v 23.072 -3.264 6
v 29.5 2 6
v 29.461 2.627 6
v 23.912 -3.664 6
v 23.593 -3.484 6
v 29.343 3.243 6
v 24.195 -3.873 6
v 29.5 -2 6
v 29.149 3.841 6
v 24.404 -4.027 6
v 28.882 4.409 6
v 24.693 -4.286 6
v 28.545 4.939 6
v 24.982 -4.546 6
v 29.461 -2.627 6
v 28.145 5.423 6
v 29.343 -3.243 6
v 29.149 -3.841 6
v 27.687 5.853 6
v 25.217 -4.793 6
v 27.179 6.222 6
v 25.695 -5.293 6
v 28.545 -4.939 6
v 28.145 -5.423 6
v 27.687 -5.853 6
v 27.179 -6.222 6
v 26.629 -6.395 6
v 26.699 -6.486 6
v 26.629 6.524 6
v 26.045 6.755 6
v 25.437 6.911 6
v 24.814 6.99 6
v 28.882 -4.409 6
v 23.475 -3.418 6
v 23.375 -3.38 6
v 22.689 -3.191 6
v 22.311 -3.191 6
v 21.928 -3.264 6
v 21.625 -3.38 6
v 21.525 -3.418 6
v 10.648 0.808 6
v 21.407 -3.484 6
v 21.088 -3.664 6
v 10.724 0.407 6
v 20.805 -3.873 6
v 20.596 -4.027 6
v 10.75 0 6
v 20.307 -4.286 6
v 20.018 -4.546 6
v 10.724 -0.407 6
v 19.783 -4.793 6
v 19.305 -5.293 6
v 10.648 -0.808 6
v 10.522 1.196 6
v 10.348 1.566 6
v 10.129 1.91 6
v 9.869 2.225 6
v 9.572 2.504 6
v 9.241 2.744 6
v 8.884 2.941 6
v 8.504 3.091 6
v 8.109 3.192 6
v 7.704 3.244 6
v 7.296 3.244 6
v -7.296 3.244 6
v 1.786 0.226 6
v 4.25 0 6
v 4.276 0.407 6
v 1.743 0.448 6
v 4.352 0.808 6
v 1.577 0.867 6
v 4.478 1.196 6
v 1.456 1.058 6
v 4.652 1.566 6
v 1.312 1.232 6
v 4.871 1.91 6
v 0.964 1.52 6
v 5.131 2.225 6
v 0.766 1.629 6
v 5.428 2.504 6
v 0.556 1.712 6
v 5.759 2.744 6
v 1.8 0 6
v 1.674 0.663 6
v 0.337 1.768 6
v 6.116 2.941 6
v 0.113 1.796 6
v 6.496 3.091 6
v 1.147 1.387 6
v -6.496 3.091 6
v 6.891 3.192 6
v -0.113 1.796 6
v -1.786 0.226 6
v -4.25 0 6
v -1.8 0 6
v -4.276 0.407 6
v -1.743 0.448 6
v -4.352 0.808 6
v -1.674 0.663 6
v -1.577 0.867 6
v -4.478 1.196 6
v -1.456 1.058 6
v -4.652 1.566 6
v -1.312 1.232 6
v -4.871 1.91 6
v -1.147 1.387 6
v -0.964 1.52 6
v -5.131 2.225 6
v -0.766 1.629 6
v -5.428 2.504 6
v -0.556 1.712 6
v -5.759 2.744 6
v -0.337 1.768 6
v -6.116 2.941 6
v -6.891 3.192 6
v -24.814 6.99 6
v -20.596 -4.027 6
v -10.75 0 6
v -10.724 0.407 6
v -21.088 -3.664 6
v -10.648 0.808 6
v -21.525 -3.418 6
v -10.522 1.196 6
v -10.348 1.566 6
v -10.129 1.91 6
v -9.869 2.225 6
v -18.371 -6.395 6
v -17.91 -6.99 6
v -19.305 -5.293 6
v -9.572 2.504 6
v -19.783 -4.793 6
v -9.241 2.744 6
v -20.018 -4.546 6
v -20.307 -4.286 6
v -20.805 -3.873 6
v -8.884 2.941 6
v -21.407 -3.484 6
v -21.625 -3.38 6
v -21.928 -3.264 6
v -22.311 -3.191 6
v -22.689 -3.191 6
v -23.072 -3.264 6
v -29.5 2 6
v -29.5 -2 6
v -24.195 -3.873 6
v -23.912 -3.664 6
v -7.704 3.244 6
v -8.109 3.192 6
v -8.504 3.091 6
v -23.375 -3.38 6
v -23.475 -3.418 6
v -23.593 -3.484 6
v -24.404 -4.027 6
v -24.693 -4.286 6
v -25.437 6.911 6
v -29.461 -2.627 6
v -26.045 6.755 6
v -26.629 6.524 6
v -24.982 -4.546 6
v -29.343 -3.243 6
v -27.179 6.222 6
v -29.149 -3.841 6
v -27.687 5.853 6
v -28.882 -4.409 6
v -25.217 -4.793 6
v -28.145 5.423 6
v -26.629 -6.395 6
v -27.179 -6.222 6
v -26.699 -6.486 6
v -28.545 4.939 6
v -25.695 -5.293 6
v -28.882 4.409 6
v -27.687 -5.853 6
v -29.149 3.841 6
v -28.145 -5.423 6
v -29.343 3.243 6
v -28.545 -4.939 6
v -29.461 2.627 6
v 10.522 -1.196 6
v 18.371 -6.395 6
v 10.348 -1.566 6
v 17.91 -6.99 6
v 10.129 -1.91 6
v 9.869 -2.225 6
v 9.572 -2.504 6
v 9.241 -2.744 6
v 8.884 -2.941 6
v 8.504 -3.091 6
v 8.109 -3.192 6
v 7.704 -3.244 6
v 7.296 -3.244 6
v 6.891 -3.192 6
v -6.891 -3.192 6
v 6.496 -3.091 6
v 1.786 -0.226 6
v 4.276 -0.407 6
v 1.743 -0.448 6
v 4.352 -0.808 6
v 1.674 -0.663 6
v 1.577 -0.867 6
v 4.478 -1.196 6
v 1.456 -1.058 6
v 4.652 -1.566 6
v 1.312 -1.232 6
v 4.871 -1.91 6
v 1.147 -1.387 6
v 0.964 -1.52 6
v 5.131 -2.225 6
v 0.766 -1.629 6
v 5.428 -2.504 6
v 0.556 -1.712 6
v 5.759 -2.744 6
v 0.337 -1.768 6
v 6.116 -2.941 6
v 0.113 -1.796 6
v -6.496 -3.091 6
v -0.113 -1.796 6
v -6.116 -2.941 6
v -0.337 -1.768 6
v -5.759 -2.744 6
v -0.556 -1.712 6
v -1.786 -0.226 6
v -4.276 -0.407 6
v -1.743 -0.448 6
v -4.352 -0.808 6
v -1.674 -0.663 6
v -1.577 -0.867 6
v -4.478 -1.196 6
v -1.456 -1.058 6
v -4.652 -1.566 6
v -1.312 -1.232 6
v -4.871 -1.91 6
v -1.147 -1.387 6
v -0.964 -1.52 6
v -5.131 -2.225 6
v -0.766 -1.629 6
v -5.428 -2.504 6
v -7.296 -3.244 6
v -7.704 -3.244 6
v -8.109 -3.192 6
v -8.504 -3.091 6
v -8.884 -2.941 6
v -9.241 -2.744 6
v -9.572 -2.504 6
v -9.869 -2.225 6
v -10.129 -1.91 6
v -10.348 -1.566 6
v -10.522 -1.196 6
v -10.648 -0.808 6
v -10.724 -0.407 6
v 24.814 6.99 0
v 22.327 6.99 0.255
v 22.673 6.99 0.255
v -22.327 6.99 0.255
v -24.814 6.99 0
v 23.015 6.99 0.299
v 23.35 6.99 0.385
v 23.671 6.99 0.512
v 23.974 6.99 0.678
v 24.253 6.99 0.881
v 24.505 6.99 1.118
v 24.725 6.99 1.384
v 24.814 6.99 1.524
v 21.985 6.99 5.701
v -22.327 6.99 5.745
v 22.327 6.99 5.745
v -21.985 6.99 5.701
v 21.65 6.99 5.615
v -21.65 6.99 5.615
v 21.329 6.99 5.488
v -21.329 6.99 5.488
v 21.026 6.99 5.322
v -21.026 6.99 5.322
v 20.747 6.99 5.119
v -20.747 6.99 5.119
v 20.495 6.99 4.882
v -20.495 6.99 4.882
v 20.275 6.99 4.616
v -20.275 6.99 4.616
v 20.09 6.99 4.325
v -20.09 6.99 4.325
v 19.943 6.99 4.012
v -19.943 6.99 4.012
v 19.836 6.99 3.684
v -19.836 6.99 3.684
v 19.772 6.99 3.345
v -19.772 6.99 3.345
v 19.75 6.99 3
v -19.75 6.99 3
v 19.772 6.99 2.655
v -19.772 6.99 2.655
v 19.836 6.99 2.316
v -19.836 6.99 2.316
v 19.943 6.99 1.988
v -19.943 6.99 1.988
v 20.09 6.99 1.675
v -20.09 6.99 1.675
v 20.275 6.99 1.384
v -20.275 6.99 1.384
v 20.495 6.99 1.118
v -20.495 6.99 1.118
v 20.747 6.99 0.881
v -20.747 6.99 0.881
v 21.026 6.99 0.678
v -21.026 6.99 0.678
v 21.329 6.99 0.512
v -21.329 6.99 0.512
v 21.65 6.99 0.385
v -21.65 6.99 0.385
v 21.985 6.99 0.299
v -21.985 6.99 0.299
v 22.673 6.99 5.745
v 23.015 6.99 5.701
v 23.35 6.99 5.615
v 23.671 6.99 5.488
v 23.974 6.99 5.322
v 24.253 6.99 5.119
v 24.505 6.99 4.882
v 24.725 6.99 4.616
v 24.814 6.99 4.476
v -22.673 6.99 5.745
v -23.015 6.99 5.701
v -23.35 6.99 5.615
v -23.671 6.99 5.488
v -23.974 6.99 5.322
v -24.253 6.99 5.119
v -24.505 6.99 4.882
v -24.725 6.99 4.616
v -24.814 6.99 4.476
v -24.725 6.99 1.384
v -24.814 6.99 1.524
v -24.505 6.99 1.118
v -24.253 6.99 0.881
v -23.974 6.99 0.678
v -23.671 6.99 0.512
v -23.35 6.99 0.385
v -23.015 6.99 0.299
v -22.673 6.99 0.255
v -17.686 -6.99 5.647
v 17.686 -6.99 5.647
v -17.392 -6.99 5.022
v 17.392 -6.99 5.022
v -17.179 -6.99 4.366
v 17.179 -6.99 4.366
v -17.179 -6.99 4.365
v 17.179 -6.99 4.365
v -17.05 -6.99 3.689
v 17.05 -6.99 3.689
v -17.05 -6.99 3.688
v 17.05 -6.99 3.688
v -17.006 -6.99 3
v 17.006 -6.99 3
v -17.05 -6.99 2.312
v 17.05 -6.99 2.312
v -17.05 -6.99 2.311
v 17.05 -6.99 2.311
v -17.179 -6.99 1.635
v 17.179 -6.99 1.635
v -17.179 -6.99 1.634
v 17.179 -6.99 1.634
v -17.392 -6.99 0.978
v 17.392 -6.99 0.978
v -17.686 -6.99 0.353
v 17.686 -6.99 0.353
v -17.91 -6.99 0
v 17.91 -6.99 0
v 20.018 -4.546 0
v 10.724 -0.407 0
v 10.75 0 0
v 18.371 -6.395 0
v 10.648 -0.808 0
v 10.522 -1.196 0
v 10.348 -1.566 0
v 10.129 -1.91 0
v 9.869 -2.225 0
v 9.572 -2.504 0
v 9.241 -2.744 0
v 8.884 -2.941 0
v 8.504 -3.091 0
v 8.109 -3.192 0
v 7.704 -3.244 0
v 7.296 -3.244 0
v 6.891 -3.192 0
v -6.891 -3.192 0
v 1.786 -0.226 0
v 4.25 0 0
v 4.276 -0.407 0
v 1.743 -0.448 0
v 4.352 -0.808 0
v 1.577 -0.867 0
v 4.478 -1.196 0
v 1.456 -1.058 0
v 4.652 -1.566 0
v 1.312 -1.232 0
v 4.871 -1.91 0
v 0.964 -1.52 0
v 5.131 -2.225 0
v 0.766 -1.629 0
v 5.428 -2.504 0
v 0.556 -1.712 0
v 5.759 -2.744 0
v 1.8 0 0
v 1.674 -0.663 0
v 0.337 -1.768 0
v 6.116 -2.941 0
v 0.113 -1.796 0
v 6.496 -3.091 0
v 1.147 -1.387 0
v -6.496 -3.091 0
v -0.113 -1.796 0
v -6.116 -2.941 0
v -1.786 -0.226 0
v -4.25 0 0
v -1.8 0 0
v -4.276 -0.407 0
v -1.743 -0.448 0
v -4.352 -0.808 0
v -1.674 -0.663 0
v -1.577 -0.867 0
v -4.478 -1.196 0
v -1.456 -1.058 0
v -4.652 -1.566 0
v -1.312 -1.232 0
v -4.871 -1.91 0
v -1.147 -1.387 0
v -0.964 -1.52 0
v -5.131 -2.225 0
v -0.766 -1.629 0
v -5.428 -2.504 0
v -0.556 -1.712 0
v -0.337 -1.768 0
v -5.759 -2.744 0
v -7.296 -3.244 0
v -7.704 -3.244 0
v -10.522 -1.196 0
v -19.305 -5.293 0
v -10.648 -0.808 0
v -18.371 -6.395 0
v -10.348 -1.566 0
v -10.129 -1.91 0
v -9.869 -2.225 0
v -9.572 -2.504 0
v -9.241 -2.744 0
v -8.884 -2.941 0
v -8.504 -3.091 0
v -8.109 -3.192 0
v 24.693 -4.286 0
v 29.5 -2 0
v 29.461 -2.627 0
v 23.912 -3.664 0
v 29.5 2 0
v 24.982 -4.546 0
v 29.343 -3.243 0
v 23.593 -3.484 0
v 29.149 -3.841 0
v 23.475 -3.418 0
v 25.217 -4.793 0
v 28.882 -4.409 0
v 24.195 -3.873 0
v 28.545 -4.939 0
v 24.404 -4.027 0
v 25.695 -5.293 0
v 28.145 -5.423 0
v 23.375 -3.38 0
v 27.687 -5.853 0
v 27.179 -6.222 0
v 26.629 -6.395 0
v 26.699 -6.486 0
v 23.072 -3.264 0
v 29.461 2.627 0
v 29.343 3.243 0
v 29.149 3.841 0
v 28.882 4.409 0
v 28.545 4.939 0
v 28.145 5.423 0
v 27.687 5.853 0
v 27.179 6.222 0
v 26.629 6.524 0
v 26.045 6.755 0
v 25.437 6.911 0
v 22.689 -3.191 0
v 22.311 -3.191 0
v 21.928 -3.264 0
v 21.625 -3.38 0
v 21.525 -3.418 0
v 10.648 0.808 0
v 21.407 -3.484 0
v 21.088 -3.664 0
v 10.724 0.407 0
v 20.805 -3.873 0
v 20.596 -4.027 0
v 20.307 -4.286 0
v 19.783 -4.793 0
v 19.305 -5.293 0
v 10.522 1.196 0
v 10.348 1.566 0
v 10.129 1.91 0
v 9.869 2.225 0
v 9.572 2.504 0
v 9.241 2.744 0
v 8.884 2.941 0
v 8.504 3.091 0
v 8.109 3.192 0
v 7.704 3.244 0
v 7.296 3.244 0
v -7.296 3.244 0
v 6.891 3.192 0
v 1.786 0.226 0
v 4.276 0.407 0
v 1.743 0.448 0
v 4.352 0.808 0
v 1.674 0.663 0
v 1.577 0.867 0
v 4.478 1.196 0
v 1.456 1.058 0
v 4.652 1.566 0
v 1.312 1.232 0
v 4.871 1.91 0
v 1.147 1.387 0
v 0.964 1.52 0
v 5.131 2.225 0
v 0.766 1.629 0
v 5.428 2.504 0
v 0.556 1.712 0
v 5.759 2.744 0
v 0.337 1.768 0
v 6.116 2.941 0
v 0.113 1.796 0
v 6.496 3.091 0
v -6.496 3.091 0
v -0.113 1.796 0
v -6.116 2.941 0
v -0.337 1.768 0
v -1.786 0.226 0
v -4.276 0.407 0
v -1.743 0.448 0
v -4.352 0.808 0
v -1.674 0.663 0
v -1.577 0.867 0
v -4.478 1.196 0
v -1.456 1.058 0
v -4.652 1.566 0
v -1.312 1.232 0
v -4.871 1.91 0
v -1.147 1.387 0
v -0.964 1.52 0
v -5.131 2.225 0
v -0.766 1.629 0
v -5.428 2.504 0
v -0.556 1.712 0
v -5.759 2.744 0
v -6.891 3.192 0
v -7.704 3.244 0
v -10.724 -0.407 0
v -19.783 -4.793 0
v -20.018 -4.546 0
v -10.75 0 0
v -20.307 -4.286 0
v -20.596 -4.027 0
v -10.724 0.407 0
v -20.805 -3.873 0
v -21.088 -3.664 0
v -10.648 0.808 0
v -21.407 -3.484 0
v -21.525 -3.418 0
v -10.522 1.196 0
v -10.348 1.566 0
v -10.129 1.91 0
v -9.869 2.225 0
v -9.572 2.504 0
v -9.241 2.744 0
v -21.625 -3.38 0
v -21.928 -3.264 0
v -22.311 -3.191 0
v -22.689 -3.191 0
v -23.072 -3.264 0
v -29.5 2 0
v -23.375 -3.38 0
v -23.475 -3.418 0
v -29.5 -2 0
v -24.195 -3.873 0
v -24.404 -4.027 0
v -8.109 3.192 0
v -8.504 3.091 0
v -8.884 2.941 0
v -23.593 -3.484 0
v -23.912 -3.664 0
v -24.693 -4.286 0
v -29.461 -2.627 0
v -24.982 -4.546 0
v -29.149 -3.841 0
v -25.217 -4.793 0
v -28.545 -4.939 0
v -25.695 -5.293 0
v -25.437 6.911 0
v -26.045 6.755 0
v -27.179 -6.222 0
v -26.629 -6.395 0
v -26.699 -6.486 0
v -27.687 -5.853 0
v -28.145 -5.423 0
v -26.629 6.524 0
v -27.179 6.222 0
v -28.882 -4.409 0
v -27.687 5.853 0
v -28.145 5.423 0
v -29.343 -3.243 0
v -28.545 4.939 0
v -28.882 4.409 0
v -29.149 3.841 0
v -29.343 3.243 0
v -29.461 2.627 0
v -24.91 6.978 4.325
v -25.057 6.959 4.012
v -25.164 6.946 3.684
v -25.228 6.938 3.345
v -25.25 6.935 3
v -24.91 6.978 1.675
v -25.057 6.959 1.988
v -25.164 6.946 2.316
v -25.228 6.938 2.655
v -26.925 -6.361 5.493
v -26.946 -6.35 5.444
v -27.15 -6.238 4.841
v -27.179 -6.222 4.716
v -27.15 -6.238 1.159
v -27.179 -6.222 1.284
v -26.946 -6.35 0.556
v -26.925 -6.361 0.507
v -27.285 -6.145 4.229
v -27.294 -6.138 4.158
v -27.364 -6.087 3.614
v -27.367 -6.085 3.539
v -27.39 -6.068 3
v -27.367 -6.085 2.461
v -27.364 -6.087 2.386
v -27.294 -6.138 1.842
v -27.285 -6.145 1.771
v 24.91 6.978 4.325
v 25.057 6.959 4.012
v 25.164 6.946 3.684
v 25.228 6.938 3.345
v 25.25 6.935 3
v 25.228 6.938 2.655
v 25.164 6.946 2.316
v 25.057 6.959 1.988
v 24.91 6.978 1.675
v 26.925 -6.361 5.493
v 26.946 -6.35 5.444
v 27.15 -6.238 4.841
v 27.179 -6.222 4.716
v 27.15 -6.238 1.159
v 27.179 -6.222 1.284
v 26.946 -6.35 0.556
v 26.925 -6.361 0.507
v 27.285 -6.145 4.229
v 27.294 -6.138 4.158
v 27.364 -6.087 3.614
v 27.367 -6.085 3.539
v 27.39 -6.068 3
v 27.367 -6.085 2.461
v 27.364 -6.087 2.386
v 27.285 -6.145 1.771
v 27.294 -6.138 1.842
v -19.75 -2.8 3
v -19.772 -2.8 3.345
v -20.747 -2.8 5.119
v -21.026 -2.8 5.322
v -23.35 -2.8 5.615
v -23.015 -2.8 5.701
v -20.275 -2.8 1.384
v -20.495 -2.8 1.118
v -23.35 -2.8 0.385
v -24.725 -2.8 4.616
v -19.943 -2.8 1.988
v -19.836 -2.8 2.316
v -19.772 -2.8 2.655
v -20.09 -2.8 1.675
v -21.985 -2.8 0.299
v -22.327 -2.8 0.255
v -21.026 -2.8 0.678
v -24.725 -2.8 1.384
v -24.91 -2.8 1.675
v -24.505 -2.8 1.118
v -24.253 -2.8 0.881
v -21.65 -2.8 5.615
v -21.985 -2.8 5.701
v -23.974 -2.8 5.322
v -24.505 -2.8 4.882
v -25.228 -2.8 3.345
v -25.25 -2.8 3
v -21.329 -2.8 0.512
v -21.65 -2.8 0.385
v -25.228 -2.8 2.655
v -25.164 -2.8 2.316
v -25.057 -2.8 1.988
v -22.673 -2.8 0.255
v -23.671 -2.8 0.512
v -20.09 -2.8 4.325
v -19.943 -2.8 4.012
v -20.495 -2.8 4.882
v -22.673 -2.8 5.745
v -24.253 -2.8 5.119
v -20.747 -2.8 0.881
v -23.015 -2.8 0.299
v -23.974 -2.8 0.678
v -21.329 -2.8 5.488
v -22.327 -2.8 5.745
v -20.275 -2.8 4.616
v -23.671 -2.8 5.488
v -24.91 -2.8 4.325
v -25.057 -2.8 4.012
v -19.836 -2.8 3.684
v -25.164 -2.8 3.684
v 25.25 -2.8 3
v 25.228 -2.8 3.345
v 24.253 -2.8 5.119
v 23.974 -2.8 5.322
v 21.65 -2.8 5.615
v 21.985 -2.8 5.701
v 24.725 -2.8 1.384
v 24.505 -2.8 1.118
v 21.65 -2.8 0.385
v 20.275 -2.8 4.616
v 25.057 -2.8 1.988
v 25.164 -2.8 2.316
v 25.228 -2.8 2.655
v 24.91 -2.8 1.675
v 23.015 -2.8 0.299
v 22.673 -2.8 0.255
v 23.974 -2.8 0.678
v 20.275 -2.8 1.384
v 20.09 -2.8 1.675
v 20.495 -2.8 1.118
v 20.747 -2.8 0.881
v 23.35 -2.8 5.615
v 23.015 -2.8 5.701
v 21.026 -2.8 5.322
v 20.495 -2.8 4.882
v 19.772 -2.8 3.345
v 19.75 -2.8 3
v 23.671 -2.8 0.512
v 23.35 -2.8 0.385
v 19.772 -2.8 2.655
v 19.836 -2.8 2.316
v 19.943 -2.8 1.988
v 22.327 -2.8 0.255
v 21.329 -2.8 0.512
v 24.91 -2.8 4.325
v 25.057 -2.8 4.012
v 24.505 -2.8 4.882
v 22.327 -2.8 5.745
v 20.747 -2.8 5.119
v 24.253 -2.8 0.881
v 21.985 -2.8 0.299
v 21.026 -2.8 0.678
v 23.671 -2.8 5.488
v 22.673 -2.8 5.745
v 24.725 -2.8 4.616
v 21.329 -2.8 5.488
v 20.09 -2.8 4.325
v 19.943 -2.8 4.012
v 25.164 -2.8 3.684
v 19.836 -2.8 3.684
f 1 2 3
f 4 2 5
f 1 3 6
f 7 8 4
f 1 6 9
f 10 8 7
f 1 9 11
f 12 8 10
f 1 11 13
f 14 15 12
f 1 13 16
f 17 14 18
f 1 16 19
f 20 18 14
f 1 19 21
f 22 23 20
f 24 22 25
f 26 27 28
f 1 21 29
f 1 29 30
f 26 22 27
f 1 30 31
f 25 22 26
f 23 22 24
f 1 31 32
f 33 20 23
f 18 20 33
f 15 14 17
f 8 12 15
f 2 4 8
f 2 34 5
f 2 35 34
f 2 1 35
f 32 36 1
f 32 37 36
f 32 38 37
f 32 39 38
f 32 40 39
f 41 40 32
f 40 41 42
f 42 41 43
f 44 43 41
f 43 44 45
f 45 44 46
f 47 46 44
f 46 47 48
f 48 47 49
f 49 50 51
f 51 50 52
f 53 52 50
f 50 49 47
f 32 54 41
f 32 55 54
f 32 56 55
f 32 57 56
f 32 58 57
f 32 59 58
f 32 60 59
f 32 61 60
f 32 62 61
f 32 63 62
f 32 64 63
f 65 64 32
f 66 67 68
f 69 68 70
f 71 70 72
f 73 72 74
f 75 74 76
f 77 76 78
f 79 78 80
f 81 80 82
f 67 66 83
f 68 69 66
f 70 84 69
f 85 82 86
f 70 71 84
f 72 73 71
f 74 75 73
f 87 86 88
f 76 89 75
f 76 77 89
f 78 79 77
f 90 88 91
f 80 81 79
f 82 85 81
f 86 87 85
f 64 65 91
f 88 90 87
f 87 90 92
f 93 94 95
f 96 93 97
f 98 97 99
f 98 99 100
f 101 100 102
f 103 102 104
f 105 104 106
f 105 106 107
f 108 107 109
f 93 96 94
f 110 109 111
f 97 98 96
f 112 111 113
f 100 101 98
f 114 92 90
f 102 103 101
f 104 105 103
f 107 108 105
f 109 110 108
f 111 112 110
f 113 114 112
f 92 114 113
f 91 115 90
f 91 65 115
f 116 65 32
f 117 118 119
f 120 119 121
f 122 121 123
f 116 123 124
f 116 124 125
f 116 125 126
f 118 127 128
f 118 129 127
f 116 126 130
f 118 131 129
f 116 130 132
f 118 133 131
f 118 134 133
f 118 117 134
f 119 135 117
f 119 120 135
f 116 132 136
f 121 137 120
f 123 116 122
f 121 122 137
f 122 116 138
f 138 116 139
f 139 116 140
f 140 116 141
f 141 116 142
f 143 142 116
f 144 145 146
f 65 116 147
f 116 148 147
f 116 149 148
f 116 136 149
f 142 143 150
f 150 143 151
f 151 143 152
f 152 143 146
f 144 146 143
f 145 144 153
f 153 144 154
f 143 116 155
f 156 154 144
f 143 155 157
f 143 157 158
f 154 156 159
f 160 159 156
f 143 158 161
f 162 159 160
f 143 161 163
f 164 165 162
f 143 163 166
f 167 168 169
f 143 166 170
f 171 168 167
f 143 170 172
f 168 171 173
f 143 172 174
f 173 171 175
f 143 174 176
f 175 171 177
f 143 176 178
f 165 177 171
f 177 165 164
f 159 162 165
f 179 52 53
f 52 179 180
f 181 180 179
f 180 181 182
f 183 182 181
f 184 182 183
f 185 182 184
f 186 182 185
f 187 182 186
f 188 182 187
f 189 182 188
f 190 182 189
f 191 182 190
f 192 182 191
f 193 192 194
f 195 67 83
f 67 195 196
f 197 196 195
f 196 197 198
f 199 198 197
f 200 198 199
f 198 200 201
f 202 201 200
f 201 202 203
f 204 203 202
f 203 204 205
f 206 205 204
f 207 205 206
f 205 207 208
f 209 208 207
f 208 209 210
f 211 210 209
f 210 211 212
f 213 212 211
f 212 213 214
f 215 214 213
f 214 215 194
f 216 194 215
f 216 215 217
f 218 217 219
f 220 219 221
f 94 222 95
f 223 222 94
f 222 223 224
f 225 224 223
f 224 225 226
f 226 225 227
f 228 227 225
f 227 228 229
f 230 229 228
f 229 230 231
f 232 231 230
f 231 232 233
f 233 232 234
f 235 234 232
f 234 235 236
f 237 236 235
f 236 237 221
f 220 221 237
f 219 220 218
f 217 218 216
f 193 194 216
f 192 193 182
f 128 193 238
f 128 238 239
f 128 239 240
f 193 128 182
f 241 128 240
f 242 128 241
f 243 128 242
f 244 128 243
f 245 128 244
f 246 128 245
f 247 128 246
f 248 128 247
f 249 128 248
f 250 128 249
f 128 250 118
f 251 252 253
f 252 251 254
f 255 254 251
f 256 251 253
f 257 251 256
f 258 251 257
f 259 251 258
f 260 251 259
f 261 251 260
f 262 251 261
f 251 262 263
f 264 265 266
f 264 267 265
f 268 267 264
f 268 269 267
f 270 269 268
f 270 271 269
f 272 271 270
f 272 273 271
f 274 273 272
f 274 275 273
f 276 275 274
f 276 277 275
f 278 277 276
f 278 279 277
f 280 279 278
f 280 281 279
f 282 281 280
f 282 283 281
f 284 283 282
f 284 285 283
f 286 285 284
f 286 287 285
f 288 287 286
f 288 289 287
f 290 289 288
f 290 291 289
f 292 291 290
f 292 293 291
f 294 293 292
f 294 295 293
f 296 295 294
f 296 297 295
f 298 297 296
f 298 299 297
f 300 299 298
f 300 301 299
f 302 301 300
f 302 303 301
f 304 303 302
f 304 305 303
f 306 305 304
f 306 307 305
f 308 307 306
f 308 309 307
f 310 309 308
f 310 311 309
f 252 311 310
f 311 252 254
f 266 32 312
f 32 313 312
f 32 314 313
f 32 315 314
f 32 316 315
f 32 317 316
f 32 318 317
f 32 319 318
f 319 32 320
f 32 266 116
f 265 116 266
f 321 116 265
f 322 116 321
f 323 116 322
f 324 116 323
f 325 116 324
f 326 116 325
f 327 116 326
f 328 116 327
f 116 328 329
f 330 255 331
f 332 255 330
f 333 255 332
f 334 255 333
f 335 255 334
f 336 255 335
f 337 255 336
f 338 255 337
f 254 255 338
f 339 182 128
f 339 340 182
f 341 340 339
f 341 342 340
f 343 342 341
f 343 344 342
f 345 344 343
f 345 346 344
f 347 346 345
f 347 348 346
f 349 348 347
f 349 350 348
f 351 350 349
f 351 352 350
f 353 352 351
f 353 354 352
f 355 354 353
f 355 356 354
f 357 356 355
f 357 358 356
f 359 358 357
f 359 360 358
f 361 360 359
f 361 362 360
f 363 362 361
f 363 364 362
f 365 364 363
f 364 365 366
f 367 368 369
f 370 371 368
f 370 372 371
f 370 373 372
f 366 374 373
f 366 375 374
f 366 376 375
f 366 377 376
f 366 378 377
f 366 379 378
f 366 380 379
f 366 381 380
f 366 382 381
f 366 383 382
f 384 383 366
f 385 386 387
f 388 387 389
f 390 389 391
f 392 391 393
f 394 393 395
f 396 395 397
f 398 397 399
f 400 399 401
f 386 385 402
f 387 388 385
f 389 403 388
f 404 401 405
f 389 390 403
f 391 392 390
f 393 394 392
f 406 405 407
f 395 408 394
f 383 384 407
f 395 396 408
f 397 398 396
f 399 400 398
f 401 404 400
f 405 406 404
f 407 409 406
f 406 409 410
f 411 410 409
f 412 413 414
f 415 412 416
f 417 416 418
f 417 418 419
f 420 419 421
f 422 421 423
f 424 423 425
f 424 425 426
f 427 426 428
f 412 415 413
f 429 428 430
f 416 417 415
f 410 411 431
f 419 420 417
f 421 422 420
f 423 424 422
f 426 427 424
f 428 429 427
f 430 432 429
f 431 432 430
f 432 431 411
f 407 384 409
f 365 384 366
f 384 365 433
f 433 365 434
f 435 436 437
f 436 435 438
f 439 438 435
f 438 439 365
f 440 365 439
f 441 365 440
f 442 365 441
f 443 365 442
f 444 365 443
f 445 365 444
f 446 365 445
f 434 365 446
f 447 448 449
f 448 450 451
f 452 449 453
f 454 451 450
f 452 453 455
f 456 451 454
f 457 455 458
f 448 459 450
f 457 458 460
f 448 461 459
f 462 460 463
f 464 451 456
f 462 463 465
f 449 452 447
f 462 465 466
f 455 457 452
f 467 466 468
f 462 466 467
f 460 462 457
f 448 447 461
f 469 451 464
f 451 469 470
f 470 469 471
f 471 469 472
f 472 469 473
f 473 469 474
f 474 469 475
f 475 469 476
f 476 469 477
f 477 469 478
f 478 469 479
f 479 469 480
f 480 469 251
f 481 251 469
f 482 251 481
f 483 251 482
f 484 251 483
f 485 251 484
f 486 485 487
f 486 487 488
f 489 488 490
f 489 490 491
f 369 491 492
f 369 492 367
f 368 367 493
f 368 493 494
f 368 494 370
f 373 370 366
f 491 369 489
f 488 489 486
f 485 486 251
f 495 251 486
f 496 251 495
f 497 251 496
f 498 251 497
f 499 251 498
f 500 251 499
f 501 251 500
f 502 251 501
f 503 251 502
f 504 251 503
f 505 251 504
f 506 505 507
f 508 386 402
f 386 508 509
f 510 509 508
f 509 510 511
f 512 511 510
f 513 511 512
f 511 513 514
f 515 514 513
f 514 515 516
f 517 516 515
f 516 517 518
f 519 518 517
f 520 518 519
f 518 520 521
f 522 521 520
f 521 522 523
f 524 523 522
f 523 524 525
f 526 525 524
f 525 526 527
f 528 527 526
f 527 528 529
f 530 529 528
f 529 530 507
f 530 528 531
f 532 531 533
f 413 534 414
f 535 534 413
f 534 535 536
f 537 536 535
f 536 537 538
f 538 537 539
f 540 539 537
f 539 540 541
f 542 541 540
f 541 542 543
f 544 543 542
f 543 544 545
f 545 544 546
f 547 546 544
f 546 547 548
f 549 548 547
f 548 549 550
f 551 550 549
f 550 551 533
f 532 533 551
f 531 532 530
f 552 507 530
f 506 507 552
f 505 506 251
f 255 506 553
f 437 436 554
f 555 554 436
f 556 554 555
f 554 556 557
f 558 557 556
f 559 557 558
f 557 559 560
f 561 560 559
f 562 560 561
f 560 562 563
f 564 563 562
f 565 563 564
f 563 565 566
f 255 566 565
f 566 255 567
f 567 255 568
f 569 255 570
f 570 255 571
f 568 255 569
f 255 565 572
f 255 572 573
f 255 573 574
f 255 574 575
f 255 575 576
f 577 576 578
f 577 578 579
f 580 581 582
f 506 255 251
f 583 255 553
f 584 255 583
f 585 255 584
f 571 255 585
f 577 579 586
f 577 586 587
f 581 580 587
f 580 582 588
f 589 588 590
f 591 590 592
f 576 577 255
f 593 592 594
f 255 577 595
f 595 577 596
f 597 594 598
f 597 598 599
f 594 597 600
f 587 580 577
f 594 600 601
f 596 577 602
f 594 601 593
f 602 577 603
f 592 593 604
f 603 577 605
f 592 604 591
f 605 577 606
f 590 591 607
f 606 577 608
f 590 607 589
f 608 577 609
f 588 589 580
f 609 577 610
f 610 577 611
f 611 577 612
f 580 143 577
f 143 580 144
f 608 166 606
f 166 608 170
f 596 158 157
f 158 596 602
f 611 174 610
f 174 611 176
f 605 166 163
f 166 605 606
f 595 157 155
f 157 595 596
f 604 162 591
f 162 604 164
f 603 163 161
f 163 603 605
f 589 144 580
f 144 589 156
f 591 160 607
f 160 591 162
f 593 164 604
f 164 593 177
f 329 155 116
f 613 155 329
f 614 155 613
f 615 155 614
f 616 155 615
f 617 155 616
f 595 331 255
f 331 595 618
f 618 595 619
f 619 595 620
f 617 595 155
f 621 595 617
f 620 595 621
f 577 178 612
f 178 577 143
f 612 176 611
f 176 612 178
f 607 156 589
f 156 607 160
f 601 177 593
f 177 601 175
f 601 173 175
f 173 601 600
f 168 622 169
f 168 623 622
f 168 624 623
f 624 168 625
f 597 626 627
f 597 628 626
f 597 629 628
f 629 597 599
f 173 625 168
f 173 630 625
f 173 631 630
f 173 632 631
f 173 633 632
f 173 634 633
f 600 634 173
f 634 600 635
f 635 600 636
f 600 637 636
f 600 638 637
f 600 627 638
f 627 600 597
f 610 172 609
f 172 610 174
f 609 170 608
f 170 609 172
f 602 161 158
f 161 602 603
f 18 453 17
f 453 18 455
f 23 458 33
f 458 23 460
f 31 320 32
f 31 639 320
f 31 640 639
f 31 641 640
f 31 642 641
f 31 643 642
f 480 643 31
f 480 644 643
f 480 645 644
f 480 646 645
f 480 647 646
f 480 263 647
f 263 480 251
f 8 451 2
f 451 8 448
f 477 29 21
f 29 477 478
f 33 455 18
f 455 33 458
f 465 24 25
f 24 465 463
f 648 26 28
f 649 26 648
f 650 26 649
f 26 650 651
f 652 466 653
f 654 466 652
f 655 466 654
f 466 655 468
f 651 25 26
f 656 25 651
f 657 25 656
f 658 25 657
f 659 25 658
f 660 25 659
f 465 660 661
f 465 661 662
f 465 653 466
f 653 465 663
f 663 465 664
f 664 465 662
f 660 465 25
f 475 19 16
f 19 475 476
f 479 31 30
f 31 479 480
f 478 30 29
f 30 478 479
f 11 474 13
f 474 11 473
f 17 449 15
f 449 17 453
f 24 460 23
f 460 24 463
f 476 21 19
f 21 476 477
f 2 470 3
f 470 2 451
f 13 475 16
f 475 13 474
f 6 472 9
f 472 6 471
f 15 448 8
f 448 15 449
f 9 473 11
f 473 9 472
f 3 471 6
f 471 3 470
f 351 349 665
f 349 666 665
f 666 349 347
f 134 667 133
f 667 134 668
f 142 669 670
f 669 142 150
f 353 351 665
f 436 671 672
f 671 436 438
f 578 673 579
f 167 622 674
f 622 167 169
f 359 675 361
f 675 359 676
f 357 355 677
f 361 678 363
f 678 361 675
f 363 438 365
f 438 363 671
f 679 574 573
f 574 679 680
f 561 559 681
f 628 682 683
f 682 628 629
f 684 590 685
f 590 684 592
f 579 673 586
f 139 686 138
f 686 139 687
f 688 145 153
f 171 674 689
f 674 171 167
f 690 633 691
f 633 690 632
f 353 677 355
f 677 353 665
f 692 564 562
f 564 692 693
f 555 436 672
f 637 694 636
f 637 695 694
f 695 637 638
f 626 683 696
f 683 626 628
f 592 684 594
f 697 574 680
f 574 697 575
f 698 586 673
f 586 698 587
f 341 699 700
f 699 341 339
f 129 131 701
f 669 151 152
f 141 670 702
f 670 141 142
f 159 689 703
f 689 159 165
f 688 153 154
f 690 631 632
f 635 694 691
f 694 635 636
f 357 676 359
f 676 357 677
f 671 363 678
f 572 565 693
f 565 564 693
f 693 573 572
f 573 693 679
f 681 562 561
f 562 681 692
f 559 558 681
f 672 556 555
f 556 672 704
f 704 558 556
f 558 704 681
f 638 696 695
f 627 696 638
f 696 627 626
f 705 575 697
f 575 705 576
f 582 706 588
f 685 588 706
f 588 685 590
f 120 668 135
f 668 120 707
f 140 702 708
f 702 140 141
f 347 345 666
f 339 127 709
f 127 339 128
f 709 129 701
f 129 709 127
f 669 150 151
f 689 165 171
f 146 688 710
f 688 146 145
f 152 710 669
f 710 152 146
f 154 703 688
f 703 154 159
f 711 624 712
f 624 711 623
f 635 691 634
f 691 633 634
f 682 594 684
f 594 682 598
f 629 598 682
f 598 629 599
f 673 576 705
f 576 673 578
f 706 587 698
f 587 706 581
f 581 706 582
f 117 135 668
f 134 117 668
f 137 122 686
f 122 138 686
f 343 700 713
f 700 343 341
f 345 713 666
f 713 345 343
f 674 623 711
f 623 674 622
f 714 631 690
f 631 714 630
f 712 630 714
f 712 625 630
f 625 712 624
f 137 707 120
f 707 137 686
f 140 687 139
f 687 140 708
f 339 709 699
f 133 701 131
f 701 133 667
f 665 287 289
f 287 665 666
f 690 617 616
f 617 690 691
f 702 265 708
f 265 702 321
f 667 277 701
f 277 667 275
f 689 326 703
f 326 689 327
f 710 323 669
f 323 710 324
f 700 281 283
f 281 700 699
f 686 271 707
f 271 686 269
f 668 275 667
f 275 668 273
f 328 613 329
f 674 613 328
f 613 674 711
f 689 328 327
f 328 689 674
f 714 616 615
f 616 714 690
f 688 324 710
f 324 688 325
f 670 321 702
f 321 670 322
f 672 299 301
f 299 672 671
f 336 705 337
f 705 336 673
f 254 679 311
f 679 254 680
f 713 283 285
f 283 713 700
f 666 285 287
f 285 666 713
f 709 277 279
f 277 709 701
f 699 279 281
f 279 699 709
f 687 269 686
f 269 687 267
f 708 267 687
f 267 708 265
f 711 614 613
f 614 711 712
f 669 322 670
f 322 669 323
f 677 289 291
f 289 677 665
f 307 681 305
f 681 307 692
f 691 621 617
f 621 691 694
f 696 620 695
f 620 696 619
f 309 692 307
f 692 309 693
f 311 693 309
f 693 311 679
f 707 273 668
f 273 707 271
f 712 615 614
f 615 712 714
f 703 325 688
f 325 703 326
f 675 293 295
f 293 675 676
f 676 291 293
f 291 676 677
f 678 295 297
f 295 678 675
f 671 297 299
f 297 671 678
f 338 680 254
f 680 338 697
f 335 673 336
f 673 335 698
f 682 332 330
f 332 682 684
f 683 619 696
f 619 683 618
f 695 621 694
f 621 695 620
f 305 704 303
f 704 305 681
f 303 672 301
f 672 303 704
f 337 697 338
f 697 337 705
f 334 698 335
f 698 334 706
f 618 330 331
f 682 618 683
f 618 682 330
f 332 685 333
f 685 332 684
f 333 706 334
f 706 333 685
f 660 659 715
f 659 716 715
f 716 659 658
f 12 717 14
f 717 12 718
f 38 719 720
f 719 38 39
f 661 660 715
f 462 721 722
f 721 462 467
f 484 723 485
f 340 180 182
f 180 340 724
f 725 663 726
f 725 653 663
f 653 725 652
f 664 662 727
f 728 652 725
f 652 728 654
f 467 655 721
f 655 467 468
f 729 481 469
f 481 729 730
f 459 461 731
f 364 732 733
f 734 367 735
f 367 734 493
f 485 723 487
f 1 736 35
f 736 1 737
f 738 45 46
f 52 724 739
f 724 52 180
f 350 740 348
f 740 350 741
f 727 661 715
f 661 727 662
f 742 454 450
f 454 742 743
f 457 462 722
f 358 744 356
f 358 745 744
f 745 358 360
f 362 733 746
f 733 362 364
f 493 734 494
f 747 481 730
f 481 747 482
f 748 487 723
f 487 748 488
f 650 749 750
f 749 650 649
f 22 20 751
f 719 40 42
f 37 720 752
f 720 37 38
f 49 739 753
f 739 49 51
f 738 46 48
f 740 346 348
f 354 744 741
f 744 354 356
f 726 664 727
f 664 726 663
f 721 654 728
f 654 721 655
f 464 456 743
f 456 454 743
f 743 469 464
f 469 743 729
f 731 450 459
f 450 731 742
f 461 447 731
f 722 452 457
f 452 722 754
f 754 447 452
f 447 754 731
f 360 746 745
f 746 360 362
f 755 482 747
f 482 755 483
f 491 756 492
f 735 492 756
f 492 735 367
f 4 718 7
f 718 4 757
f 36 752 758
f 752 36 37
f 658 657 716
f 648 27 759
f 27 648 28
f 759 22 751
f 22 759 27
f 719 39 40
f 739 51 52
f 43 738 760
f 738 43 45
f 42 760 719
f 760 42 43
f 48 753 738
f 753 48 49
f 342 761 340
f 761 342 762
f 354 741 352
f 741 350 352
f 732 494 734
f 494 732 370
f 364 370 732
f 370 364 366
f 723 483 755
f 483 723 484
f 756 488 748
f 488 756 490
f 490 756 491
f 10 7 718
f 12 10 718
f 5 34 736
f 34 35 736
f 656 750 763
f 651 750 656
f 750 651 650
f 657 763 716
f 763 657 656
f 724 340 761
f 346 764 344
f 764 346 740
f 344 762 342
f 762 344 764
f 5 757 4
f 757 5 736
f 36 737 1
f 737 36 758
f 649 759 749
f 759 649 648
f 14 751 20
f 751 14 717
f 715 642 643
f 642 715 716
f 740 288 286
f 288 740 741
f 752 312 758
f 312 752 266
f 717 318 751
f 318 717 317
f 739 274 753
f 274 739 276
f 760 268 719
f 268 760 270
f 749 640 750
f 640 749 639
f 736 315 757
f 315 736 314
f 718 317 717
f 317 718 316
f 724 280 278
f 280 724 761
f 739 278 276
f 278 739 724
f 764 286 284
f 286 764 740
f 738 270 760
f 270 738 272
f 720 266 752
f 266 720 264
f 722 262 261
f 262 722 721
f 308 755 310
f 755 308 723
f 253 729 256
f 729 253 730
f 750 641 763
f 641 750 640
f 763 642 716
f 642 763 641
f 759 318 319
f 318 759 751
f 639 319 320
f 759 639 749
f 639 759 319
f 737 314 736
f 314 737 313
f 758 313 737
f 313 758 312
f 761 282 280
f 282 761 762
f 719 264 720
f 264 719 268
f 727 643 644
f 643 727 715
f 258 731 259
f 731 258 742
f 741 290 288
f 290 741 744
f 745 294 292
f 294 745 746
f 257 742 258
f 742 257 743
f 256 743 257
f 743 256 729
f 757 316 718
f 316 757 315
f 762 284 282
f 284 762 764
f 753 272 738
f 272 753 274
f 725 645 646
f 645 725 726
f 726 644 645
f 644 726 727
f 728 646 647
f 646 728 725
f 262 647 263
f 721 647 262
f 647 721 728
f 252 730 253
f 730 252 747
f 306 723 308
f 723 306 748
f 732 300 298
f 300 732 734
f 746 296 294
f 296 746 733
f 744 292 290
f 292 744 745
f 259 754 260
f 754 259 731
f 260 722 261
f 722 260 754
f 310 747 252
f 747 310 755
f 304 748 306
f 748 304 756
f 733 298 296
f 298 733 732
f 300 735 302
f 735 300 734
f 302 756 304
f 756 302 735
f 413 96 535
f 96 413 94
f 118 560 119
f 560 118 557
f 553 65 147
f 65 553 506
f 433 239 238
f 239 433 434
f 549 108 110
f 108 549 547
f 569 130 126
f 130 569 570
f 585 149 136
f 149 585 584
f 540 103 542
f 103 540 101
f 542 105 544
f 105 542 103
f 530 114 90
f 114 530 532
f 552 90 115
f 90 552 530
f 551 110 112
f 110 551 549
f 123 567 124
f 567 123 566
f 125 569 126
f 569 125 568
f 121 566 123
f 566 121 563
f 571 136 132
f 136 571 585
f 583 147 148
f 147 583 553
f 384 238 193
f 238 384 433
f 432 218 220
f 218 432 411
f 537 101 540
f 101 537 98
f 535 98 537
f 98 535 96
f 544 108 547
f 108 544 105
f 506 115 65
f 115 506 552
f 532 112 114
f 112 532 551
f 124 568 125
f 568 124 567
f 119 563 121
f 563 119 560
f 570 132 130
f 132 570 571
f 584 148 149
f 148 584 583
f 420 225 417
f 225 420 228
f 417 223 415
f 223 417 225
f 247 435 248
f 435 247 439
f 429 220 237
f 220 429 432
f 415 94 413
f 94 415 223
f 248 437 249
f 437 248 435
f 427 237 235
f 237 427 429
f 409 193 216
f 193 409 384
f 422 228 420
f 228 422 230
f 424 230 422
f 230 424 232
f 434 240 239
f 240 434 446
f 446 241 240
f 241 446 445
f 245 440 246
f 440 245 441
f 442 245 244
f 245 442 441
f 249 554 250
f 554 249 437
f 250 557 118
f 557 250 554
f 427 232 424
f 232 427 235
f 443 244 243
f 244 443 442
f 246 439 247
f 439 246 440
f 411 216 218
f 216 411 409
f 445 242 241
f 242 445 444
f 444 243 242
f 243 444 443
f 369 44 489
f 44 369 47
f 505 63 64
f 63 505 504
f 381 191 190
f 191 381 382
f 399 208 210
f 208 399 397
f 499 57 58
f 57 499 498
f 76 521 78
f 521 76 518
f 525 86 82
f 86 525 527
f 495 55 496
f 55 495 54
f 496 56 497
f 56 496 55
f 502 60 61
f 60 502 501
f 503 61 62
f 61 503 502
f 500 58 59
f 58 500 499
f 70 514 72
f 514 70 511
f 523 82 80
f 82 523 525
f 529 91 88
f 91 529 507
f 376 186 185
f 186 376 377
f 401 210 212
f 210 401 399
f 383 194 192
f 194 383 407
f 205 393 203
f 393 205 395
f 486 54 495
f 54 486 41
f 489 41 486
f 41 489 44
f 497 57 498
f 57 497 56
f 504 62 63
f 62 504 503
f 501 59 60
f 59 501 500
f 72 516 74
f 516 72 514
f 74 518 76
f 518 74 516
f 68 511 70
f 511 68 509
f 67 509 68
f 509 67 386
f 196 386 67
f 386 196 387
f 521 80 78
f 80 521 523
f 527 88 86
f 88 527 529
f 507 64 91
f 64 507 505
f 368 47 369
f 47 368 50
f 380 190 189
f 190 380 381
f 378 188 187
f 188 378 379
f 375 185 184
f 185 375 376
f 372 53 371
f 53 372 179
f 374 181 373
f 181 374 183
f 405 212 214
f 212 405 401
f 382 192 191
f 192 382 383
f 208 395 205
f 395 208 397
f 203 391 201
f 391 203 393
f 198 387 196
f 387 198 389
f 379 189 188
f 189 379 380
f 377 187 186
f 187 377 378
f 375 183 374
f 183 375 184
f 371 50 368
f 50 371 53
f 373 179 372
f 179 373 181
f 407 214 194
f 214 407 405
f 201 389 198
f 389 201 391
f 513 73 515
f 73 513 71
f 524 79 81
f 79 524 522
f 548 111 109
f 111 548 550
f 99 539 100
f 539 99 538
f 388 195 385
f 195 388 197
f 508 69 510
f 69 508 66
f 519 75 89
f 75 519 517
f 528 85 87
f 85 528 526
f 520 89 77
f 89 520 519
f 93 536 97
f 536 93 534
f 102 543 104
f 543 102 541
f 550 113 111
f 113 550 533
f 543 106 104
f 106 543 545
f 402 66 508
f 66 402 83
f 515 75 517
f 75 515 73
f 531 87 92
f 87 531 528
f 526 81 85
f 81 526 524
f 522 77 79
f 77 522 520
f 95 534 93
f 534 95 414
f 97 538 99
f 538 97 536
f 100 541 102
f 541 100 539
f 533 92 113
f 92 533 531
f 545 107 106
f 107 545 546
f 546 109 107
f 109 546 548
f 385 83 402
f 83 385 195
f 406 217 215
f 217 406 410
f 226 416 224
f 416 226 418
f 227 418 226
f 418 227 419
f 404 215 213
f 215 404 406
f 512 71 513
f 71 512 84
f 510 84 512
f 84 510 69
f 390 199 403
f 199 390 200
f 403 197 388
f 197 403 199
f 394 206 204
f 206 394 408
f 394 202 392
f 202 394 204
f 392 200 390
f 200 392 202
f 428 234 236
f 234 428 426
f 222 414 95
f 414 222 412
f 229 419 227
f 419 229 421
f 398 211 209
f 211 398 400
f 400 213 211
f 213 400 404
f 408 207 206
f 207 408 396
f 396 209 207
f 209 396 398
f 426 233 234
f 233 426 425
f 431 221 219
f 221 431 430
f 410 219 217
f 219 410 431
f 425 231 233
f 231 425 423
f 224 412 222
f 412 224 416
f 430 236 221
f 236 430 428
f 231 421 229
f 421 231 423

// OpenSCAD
$fn = 50;


difference() {
	union() {
		hull() {
			translate(v = [-9.5000000000, 2.0000000000, 0]) {
				cylinder(h = 6, r = 5);
			}
			translate(v = [9.5000000000, 2.0000000000, 0]) {
				cylinder(h = 6, r = 5);
			}
			translate(v = [-9.5000000000, -2.0000000000, 0]) {
				cylinder(h = 6, r = 5);
			}
			translate(v = [9.5000000000, -2.0000000000, 0]) {
				cylinder(h = 6, r = 5);
			}
		}
		translate(v = [-15.0000000000, 0.0000000000, 0]) {
			hull() {
				translate(v = [-9.5000000000, 2.0000000000, 0]) {
					cylinder(h = 6, r = 5);
				}
				translate(v = [9.5000000000, 2.0000000000, 0]) {
					cylinder(h = 6, r = 5);
				}
				translate(v = [-9.5000000000, -2.0000000000, 0]) {
					cylinder(h = 6, r = 5);
				}
				translate(v = [9.5000000000, -2.0000000000, 0]) {
					cylinder(h = 6, r = 5);
				}
			}
		}
		translate(v = [-15.0000000000, 0.0000000000, 0]) {
			hull() {
				translate(v = [-9.5000000000, 2.0000000000, 0]) {
					cylinder(h = 6, r = 5);
				}
				translate(v = [9.5000000000, 2.0000000000, 0]) {
					cylinder(h = 6, r = 5);
				}
				translate(v = [-9.5000000000, -2.0000000000, 0]) {
					cylinder(h = 6, r = 5);
				}
				translate(v = [9.5000000000, -2.0000000000, 0]) {
					cylinder(h = 6, r = 5);
				}
			}
		}
		translate(v = [15.0000000000, 0.0000000000, 0]) {
			hull() {
				translate(v = [-9.5000000000, 2.0000000000, 0]) {
					cylinder(h = 6, r = 5);
				}
				translate(v = [9.5000000000, 2.0000000000, 0]) {
					cylinder(h = 6, r = 5);
				}
				translate(v = [-9.5000000000, -2.0000000000, 0]) {
					cylinder(h = 6, r = 5);
				}
				translate(v = [9.5000000000, -2.0000000000, 0]) {
					cylinder(h = 6, r = 5);
				}
			}
		}
		translate(v = [15.0000000000, 0.0000000000, 0]) {
			hull() {
				translate(v = [-9.5000000000, 2.0000000000, 0]) {
					cylinder(h = 6, r = 5);
				}
				translate(v = [9.5000000000, 2.0000000000, 0]) {
					cylinder(h = 6, r = 5);
				}
				translate(v = [-9.5000000000, -2.0000000000, 0]) {
					cylinder(h = 6, r = 5);
				}
				translate(v = [9.5000000000, -2.0000000000, 0]) {
					cylinder(h = 6, r = 5);
				}
			}
		}
	}
	union() {
		translate(v = [-22.5000000000, -7.0000000000, 3.0000000000]) {
			rotate(a = [90, 0, 0]) {
				difference() {
					union() {
						#translate(v = [0, 0, -14.0000000000]) {
							cylinder(h = 14, r = 2.2500000000);
						}
						#translate(v = [0, 0, -4.2000000000]) {
							cylinder(h = 4.2000000000, r1 = 2.7500000000, r2 = 5.5000000000);
						}
						#translate(v = [0, 0, -14.0000000000]) {
							cylinder(h = 14, r = 2.7500000000);
						}
						#translate(v = [0, 0, -14.0000000000]) {
							cylinder(h = 14, r = 2.2500000000);
						}
					}
					union();
				}
			}
		}
		translate(v = [22.5000000000, -7.0000000000, 3.0000000000]) {
			rotate(a = [90, 0, 0]) {
				difference() {
					union() {
						#translate(v = [0, 0, -14.0000000000]) {
							cylinder(h = 14, r = 2.2500000000);
						}
						#translate(v = [0, 0, -4.2000000000]) {
							cylinder(h = 4.2000000000, r1 = 2.7500000000, r2 = 5.5000000000);
						}
						#translate(v = [0, 0, -14.0000000000]) {
							cylinder(h = 14, r = 2.7500000000);
						}
						#translate(v = [0, 0, -14.0000000000]) {
							cylinder(h = 14, r = 2.2500000000);
						}
					}
					union();
				}
			}
		}
		translate(v = [-7.5000000000, 0.0000000000, 0]) {
			translate(v = [0, 0, -100]) {
				cylinder(h = 200, r = 3.2500000000);
			}
		}
		translate(v = [7.5000000000, 0.0000000000, 0]) {
			translate(v = [0, 0, -100]) {
				cylinder(h = 200, r = 3.2500000000);
			}
		}
		translate(v = [-7.5000000000, 0.0000000000, 0]) {
			translate(v = [0, 0, -100]) {
				cylinder(h = 200, r = 1.8000000000);
			}
		}
		translate(v = [0, 0, -100]) {
			cylinder(h = 200, r = 1.8000000000);
		}
		translate(v = [7.5000000000, 0.0000000000, 0]) {
			translate(v = [0, 0, -100]) {
				cylinder(h = 200, r = 1.8000000000);
			}
		}
	}
}
